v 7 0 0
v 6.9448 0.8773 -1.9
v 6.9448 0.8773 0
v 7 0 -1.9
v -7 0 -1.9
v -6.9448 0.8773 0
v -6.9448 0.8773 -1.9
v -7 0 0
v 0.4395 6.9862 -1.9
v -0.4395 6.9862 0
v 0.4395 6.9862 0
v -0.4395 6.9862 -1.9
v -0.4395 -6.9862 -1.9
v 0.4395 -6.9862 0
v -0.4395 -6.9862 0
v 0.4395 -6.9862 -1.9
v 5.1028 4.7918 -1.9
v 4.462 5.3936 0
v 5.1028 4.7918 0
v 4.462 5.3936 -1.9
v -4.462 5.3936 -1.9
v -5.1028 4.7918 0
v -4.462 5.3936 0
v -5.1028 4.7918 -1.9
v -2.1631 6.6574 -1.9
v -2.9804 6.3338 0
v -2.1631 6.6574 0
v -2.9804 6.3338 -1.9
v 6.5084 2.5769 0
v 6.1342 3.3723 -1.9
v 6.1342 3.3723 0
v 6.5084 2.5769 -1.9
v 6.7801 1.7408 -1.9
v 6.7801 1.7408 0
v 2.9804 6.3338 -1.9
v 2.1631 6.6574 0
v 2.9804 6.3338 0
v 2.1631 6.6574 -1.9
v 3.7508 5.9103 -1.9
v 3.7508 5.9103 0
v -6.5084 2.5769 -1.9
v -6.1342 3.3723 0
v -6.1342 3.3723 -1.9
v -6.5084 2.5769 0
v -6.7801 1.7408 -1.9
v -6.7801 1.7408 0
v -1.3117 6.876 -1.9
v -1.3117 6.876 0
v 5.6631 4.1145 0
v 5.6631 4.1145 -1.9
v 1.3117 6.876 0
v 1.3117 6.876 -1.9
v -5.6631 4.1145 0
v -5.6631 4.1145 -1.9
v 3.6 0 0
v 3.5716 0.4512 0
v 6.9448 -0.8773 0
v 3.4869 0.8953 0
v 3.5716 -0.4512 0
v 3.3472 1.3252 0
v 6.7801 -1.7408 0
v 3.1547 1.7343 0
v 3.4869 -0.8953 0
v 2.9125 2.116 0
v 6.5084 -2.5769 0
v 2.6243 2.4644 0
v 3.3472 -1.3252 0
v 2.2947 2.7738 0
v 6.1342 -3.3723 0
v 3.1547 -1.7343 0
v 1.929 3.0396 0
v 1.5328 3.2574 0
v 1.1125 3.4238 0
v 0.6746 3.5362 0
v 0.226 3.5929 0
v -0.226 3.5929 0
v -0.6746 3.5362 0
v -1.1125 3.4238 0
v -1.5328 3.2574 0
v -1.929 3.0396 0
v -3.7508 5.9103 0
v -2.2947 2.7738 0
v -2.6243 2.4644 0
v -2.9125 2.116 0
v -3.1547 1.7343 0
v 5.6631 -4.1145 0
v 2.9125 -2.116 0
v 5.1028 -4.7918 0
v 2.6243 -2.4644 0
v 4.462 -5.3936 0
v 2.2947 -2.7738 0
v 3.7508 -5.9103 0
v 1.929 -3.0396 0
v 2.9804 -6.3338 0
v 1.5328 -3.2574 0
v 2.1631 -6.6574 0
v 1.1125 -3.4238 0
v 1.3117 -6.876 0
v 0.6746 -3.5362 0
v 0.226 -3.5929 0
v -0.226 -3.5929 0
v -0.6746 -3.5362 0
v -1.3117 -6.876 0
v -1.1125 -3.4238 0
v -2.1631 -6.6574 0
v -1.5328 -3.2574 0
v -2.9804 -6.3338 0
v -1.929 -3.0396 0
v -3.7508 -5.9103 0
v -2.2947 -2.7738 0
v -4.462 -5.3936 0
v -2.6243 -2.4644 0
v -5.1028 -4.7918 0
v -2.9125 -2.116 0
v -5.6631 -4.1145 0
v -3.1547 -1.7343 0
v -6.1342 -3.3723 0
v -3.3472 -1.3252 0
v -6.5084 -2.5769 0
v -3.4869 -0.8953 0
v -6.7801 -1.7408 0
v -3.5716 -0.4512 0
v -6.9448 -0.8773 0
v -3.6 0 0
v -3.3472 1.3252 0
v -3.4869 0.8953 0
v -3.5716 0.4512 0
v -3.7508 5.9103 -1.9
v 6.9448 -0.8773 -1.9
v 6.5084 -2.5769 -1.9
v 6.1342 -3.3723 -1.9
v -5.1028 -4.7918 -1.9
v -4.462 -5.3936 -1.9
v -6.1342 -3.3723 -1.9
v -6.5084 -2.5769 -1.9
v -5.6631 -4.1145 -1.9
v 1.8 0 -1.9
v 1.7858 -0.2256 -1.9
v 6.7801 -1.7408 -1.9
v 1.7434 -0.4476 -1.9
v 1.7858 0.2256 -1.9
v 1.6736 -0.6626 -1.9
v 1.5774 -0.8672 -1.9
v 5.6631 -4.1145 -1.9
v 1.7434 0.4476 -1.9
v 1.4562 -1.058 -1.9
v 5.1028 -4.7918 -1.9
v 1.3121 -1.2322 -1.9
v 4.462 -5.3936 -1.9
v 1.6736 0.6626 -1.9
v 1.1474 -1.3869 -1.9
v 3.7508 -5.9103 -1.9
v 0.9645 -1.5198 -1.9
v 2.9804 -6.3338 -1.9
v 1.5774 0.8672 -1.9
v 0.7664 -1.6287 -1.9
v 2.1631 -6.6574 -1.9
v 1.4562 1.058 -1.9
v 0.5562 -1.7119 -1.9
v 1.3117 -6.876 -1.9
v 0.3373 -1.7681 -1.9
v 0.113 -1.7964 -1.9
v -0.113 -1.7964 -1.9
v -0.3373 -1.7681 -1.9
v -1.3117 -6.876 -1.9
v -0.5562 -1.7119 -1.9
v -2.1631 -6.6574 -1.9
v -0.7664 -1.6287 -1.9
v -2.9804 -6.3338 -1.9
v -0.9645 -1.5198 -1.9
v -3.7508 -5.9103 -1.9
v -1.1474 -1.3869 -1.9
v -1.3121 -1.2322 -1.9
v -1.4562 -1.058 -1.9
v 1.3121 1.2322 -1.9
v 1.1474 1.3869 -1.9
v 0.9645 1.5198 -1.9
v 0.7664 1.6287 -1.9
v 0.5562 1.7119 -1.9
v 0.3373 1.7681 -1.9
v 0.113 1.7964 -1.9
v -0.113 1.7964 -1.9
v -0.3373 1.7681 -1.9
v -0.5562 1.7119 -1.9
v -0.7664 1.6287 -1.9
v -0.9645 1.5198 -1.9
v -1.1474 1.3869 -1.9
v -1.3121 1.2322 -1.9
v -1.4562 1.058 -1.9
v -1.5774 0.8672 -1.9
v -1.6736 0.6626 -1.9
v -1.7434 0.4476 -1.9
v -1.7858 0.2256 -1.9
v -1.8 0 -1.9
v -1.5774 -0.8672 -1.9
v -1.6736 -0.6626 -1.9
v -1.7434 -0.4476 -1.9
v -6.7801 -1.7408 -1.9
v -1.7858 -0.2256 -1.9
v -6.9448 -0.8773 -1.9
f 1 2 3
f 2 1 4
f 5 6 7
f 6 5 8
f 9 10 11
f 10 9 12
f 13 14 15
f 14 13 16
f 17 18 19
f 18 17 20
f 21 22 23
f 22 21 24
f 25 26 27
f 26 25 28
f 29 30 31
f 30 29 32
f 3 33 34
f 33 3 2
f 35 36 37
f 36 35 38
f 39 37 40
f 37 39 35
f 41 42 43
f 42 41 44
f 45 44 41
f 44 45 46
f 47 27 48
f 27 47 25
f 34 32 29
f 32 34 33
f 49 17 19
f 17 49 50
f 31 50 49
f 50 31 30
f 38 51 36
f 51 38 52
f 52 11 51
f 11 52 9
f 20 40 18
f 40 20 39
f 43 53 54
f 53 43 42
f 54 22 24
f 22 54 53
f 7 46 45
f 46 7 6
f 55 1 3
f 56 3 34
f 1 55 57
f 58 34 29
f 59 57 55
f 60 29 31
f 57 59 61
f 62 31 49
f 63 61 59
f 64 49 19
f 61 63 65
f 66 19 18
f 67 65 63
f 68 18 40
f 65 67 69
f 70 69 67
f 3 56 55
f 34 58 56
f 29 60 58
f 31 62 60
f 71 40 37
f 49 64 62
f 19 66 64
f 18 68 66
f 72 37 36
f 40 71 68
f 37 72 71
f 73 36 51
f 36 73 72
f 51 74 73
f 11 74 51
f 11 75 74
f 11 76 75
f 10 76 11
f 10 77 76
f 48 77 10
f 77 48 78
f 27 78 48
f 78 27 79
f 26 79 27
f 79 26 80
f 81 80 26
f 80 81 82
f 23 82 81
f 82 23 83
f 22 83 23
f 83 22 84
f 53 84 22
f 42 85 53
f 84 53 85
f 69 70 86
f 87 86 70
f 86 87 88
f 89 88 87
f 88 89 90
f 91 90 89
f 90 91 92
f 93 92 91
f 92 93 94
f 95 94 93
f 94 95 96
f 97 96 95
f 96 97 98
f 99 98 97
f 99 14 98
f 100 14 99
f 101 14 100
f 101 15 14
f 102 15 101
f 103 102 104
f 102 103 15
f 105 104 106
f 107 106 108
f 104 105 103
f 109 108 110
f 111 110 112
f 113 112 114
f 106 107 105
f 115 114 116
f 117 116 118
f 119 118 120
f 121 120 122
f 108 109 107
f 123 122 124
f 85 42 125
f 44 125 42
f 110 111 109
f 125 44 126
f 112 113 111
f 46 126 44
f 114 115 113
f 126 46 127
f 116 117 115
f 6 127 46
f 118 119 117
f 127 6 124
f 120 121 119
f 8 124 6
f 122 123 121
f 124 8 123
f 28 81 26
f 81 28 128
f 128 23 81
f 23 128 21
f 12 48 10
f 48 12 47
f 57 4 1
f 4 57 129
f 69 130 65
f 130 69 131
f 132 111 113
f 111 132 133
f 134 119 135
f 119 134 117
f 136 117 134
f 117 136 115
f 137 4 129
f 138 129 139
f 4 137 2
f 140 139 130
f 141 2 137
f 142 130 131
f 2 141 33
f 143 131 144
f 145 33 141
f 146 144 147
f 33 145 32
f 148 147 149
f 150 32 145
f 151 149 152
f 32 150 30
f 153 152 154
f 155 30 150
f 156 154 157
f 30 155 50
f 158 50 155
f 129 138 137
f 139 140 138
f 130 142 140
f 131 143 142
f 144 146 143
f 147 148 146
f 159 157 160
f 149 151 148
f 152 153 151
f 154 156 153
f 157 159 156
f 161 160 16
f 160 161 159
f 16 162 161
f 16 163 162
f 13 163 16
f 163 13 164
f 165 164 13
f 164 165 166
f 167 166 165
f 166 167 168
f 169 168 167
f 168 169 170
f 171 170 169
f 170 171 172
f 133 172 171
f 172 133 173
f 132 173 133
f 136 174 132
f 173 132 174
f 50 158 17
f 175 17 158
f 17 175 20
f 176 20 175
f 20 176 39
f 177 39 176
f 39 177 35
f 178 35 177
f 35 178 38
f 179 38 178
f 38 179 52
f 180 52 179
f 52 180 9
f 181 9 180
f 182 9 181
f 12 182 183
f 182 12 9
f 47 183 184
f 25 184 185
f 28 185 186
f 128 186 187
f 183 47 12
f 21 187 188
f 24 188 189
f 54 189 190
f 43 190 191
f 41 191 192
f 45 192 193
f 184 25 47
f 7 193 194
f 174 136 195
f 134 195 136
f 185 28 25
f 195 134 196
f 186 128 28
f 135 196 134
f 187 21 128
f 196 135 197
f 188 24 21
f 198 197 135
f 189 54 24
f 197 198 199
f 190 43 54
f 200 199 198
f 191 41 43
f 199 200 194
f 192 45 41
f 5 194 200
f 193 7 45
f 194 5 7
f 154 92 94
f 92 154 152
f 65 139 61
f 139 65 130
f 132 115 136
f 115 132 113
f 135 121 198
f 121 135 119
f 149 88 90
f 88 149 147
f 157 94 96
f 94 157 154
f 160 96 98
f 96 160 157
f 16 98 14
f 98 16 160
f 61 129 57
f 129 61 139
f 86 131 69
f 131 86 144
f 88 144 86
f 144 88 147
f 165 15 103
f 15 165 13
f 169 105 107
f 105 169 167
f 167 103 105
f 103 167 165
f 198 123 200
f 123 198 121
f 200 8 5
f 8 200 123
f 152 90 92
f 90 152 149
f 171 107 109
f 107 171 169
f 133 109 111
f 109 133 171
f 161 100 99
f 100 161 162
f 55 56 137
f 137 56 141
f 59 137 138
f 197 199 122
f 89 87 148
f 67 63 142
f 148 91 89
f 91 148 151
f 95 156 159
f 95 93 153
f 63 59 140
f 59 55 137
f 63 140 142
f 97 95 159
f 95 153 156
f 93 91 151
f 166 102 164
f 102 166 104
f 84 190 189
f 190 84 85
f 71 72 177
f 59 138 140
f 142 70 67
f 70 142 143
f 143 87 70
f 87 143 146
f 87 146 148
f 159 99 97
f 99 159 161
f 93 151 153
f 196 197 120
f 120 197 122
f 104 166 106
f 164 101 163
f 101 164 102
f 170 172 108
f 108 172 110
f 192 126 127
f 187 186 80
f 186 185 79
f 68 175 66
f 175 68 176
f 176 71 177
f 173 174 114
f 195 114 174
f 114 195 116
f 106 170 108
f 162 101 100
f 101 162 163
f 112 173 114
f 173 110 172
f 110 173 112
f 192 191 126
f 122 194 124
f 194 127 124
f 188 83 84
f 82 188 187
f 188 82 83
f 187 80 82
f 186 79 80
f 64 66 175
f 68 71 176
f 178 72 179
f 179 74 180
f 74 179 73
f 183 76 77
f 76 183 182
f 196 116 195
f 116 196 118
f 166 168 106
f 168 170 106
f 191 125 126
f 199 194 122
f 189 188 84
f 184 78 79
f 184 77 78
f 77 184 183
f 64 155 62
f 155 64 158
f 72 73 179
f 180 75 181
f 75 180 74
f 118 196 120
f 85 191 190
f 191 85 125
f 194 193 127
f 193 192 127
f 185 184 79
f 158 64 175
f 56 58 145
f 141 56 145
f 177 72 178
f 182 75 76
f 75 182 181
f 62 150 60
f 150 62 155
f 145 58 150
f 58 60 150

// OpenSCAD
$fn = 50;


difference() {
	union() {
		translate(v = [0, 0, -1.9000000000]) {
			cylinder(h = 1.9000000000, r = 7.0000000000);
		}
		translate(v = [0, 0, -1.9000000000]) {
			cylinder(h = 1.9000000000, r = 2.8750000000);
		}
	}
	union() {
		translate(v = [0, 0, 0]) {
			rotate(a = [0, 0, 0]) {
				difference() {
					union() {
						#translate(v = [0, 0, -1.9000000000]) {
							cylinder(h = 1.9000000000, r = 1.5000000000);
						}
						#translate(v = [0, 0, -1.9000000000]) {
							cylinder(h = 1.9000000000, r1 = 1.8000000000, r2 = 3.6000000000);
						}
						#translate(v = [0, 0, -1.9000000000]) {
							cylinder(h = 1.9000000000, r = 1.8000000000);
						}
						#translate(v = [0, 0, -1.9000000000]) {
							cylinder(h = 1.9000000000, r = 1.5000000000);
						}
					}
					union();
				}
			}
		}
	}
}
